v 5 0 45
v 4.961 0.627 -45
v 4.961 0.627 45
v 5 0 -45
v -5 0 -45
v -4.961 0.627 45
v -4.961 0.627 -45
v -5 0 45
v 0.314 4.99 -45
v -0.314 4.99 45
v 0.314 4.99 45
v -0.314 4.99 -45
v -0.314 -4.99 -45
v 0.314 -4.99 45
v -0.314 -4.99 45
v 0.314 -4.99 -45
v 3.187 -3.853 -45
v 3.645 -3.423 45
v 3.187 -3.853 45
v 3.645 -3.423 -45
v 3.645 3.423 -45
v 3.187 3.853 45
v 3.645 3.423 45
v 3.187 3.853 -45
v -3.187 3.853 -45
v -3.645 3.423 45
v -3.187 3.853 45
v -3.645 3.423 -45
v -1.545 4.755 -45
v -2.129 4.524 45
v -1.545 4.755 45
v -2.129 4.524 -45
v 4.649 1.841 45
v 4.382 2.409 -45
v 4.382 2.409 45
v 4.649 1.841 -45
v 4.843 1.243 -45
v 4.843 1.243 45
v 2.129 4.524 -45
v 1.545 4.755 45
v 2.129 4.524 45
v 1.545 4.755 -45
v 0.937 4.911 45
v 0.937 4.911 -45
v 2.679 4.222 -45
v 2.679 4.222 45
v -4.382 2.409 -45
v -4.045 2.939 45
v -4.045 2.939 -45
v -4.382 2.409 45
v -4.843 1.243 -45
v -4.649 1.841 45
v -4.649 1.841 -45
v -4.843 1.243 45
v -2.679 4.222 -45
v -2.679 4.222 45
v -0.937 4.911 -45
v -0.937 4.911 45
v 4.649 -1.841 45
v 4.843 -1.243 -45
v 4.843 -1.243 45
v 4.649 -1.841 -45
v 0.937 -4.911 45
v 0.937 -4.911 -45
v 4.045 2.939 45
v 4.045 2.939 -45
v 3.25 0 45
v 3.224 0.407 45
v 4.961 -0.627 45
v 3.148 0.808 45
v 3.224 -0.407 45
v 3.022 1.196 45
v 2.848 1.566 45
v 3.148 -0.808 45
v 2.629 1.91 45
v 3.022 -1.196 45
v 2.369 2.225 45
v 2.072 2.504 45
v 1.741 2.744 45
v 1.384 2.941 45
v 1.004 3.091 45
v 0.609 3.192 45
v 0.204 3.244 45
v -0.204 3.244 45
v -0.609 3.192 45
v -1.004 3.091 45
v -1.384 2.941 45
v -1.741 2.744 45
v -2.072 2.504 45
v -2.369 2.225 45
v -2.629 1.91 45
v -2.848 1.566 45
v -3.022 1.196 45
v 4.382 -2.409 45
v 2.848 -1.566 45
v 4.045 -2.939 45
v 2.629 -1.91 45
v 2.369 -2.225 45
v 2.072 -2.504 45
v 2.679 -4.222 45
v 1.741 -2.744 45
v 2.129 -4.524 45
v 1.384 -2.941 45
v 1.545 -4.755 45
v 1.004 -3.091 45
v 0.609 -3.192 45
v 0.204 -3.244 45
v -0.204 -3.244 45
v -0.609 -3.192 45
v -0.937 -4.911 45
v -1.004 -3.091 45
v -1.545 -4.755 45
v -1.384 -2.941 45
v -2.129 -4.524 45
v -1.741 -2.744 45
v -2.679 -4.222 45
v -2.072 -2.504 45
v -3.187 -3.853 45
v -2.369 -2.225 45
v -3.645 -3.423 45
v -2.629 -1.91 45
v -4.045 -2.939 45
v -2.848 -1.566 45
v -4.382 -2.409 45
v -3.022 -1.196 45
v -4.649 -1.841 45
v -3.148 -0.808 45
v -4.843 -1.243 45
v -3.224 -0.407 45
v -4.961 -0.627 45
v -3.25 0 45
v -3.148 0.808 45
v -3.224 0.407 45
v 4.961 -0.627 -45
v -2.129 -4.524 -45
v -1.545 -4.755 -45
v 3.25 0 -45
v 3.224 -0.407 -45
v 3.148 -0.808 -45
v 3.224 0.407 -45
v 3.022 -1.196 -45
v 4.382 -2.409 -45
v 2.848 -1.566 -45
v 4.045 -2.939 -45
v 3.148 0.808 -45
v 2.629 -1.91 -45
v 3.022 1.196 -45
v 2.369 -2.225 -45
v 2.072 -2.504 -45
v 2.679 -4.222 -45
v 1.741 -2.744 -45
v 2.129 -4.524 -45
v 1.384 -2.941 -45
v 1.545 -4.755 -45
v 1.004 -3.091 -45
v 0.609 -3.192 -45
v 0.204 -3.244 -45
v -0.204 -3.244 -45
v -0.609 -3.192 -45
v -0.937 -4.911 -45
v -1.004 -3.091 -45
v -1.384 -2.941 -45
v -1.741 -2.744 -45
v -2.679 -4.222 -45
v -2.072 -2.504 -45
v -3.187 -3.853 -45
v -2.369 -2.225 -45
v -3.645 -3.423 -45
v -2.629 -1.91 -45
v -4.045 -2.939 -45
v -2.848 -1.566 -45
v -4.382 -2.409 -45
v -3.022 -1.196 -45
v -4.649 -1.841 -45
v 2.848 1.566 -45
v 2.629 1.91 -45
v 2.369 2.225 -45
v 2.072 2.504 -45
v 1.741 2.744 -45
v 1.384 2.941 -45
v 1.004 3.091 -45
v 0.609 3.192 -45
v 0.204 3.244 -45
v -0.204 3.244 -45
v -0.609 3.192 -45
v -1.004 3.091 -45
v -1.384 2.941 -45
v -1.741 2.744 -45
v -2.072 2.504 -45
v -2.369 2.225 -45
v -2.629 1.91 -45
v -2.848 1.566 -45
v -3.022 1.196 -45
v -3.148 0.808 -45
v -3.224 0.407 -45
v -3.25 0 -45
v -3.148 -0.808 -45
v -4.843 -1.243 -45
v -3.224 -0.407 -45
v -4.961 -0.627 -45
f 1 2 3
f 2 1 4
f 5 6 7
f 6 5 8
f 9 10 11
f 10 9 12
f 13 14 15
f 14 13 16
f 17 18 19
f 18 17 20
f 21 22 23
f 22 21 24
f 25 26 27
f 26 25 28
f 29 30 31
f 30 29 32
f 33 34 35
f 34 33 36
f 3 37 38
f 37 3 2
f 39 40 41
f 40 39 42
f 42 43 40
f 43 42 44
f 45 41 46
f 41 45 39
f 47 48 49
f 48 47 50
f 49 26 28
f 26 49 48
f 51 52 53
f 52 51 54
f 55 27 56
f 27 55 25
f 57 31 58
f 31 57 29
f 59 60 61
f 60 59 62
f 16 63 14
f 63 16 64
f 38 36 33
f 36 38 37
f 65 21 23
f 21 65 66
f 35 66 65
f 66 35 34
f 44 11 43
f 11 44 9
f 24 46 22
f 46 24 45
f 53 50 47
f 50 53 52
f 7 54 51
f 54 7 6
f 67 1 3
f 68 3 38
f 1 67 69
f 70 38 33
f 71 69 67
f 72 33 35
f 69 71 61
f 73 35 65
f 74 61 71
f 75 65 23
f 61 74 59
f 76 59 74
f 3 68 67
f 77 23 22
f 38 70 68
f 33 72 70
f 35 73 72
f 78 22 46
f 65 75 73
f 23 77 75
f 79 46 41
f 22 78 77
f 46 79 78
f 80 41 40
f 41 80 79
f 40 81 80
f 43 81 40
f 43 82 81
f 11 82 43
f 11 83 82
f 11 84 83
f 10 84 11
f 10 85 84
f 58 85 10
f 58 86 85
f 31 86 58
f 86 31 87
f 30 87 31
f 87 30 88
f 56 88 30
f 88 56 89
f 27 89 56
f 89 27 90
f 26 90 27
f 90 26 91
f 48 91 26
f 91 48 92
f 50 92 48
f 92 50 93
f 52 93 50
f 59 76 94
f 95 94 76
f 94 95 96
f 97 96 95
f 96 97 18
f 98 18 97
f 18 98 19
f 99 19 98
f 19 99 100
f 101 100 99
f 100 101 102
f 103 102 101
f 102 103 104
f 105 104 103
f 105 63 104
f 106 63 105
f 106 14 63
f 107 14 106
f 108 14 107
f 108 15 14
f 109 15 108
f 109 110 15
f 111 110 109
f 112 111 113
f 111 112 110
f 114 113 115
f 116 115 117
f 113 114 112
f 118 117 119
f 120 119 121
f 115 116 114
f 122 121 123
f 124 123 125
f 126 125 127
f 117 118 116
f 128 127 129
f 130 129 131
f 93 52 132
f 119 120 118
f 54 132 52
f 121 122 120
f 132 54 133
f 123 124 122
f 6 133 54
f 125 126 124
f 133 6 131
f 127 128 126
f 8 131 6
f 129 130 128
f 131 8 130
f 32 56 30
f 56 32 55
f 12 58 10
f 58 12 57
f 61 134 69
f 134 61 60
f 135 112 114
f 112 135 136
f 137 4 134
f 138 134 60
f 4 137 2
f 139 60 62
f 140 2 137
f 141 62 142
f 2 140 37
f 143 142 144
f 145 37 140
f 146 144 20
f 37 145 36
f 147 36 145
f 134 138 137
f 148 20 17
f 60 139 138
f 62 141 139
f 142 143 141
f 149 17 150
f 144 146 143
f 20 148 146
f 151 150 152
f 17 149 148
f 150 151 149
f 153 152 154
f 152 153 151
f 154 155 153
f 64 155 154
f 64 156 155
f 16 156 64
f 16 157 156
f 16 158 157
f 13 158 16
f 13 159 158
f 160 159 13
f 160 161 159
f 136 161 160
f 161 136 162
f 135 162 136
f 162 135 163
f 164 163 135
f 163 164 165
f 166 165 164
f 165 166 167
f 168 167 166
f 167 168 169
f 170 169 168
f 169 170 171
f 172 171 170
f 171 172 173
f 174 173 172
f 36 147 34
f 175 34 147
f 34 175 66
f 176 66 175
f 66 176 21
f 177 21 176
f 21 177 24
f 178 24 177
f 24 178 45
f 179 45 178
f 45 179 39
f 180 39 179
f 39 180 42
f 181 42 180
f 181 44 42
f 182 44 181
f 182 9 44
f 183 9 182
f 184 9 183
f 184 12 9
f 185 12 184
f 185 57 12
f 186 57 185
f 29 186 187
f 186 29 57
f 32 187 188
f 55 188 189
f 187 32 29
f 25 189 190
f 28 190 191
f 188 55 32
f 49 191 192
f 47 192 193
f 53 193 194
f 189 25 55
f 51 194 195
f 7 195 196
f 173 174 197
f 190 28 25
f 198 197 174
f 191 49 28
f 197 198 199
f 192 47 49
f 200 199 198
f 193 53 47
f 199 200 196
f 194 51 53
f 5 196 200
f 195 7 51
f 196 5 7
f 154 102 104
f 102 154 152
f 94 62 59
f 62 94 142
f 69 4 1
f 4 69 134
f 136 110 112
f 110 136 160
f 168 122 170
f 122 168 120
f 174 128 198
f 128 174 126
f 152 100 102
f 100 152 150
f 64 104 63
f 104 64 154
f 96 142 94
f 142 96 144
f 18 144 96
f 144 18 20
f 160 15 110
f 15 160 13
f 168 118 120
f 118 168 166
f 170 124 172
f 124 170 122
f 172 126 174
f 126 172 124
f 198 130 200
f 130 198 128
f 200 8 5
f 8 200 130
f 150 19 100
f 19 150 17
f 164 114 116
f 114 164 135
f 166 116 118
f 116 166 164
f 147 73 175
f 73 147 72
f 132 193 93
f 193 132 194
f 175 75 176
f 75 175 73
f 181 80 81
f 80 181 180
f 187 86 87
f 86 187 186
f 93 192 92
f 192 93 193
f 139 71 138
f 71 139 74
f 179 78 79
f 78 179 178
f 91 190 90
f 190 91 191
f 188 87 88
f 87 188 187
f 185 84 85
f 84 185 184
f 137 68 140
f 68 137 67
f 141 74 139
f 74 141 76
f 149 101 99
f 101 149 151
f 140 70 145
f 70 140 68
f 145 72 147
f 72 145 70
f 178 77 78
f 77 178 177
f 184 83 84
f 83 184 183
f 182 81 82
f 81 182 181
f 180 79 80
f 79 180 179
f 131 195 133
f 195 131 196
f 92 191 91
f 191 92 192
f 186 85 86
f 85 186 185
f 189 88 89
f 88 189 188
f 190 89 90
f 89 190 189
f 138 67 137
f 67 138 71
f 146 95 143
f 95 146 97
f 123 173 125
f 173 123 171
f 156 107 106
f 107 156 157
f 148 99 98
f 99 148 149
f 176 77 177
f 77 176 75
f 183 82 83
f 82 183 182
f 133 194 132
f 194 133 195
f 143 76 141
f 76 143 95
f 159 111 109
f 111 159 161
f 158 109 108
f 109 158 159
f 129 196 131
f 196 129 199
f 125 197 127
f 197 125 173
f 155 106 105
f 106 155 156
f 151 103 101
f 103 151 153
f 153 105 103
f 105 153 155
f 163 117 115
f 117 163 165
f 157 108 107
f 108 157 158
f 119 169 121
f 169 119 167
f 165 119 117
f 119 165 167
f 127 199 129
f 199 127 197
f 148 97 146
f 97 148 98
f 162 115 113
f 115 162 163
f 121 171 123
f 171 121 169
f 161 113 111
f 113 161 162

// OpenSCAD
$fn = 50;


difference() {
	union() {
		translate(v = [0, 0, -45.0000000000]) {
			cylinder(h = 90, r = 5.0000000000);
		}
	}
	union() {
		translate(v = [0, 0, -100.0000000000]) {
			cylinder(h = 200, r = 3.2500000000);
		}
	}
}
